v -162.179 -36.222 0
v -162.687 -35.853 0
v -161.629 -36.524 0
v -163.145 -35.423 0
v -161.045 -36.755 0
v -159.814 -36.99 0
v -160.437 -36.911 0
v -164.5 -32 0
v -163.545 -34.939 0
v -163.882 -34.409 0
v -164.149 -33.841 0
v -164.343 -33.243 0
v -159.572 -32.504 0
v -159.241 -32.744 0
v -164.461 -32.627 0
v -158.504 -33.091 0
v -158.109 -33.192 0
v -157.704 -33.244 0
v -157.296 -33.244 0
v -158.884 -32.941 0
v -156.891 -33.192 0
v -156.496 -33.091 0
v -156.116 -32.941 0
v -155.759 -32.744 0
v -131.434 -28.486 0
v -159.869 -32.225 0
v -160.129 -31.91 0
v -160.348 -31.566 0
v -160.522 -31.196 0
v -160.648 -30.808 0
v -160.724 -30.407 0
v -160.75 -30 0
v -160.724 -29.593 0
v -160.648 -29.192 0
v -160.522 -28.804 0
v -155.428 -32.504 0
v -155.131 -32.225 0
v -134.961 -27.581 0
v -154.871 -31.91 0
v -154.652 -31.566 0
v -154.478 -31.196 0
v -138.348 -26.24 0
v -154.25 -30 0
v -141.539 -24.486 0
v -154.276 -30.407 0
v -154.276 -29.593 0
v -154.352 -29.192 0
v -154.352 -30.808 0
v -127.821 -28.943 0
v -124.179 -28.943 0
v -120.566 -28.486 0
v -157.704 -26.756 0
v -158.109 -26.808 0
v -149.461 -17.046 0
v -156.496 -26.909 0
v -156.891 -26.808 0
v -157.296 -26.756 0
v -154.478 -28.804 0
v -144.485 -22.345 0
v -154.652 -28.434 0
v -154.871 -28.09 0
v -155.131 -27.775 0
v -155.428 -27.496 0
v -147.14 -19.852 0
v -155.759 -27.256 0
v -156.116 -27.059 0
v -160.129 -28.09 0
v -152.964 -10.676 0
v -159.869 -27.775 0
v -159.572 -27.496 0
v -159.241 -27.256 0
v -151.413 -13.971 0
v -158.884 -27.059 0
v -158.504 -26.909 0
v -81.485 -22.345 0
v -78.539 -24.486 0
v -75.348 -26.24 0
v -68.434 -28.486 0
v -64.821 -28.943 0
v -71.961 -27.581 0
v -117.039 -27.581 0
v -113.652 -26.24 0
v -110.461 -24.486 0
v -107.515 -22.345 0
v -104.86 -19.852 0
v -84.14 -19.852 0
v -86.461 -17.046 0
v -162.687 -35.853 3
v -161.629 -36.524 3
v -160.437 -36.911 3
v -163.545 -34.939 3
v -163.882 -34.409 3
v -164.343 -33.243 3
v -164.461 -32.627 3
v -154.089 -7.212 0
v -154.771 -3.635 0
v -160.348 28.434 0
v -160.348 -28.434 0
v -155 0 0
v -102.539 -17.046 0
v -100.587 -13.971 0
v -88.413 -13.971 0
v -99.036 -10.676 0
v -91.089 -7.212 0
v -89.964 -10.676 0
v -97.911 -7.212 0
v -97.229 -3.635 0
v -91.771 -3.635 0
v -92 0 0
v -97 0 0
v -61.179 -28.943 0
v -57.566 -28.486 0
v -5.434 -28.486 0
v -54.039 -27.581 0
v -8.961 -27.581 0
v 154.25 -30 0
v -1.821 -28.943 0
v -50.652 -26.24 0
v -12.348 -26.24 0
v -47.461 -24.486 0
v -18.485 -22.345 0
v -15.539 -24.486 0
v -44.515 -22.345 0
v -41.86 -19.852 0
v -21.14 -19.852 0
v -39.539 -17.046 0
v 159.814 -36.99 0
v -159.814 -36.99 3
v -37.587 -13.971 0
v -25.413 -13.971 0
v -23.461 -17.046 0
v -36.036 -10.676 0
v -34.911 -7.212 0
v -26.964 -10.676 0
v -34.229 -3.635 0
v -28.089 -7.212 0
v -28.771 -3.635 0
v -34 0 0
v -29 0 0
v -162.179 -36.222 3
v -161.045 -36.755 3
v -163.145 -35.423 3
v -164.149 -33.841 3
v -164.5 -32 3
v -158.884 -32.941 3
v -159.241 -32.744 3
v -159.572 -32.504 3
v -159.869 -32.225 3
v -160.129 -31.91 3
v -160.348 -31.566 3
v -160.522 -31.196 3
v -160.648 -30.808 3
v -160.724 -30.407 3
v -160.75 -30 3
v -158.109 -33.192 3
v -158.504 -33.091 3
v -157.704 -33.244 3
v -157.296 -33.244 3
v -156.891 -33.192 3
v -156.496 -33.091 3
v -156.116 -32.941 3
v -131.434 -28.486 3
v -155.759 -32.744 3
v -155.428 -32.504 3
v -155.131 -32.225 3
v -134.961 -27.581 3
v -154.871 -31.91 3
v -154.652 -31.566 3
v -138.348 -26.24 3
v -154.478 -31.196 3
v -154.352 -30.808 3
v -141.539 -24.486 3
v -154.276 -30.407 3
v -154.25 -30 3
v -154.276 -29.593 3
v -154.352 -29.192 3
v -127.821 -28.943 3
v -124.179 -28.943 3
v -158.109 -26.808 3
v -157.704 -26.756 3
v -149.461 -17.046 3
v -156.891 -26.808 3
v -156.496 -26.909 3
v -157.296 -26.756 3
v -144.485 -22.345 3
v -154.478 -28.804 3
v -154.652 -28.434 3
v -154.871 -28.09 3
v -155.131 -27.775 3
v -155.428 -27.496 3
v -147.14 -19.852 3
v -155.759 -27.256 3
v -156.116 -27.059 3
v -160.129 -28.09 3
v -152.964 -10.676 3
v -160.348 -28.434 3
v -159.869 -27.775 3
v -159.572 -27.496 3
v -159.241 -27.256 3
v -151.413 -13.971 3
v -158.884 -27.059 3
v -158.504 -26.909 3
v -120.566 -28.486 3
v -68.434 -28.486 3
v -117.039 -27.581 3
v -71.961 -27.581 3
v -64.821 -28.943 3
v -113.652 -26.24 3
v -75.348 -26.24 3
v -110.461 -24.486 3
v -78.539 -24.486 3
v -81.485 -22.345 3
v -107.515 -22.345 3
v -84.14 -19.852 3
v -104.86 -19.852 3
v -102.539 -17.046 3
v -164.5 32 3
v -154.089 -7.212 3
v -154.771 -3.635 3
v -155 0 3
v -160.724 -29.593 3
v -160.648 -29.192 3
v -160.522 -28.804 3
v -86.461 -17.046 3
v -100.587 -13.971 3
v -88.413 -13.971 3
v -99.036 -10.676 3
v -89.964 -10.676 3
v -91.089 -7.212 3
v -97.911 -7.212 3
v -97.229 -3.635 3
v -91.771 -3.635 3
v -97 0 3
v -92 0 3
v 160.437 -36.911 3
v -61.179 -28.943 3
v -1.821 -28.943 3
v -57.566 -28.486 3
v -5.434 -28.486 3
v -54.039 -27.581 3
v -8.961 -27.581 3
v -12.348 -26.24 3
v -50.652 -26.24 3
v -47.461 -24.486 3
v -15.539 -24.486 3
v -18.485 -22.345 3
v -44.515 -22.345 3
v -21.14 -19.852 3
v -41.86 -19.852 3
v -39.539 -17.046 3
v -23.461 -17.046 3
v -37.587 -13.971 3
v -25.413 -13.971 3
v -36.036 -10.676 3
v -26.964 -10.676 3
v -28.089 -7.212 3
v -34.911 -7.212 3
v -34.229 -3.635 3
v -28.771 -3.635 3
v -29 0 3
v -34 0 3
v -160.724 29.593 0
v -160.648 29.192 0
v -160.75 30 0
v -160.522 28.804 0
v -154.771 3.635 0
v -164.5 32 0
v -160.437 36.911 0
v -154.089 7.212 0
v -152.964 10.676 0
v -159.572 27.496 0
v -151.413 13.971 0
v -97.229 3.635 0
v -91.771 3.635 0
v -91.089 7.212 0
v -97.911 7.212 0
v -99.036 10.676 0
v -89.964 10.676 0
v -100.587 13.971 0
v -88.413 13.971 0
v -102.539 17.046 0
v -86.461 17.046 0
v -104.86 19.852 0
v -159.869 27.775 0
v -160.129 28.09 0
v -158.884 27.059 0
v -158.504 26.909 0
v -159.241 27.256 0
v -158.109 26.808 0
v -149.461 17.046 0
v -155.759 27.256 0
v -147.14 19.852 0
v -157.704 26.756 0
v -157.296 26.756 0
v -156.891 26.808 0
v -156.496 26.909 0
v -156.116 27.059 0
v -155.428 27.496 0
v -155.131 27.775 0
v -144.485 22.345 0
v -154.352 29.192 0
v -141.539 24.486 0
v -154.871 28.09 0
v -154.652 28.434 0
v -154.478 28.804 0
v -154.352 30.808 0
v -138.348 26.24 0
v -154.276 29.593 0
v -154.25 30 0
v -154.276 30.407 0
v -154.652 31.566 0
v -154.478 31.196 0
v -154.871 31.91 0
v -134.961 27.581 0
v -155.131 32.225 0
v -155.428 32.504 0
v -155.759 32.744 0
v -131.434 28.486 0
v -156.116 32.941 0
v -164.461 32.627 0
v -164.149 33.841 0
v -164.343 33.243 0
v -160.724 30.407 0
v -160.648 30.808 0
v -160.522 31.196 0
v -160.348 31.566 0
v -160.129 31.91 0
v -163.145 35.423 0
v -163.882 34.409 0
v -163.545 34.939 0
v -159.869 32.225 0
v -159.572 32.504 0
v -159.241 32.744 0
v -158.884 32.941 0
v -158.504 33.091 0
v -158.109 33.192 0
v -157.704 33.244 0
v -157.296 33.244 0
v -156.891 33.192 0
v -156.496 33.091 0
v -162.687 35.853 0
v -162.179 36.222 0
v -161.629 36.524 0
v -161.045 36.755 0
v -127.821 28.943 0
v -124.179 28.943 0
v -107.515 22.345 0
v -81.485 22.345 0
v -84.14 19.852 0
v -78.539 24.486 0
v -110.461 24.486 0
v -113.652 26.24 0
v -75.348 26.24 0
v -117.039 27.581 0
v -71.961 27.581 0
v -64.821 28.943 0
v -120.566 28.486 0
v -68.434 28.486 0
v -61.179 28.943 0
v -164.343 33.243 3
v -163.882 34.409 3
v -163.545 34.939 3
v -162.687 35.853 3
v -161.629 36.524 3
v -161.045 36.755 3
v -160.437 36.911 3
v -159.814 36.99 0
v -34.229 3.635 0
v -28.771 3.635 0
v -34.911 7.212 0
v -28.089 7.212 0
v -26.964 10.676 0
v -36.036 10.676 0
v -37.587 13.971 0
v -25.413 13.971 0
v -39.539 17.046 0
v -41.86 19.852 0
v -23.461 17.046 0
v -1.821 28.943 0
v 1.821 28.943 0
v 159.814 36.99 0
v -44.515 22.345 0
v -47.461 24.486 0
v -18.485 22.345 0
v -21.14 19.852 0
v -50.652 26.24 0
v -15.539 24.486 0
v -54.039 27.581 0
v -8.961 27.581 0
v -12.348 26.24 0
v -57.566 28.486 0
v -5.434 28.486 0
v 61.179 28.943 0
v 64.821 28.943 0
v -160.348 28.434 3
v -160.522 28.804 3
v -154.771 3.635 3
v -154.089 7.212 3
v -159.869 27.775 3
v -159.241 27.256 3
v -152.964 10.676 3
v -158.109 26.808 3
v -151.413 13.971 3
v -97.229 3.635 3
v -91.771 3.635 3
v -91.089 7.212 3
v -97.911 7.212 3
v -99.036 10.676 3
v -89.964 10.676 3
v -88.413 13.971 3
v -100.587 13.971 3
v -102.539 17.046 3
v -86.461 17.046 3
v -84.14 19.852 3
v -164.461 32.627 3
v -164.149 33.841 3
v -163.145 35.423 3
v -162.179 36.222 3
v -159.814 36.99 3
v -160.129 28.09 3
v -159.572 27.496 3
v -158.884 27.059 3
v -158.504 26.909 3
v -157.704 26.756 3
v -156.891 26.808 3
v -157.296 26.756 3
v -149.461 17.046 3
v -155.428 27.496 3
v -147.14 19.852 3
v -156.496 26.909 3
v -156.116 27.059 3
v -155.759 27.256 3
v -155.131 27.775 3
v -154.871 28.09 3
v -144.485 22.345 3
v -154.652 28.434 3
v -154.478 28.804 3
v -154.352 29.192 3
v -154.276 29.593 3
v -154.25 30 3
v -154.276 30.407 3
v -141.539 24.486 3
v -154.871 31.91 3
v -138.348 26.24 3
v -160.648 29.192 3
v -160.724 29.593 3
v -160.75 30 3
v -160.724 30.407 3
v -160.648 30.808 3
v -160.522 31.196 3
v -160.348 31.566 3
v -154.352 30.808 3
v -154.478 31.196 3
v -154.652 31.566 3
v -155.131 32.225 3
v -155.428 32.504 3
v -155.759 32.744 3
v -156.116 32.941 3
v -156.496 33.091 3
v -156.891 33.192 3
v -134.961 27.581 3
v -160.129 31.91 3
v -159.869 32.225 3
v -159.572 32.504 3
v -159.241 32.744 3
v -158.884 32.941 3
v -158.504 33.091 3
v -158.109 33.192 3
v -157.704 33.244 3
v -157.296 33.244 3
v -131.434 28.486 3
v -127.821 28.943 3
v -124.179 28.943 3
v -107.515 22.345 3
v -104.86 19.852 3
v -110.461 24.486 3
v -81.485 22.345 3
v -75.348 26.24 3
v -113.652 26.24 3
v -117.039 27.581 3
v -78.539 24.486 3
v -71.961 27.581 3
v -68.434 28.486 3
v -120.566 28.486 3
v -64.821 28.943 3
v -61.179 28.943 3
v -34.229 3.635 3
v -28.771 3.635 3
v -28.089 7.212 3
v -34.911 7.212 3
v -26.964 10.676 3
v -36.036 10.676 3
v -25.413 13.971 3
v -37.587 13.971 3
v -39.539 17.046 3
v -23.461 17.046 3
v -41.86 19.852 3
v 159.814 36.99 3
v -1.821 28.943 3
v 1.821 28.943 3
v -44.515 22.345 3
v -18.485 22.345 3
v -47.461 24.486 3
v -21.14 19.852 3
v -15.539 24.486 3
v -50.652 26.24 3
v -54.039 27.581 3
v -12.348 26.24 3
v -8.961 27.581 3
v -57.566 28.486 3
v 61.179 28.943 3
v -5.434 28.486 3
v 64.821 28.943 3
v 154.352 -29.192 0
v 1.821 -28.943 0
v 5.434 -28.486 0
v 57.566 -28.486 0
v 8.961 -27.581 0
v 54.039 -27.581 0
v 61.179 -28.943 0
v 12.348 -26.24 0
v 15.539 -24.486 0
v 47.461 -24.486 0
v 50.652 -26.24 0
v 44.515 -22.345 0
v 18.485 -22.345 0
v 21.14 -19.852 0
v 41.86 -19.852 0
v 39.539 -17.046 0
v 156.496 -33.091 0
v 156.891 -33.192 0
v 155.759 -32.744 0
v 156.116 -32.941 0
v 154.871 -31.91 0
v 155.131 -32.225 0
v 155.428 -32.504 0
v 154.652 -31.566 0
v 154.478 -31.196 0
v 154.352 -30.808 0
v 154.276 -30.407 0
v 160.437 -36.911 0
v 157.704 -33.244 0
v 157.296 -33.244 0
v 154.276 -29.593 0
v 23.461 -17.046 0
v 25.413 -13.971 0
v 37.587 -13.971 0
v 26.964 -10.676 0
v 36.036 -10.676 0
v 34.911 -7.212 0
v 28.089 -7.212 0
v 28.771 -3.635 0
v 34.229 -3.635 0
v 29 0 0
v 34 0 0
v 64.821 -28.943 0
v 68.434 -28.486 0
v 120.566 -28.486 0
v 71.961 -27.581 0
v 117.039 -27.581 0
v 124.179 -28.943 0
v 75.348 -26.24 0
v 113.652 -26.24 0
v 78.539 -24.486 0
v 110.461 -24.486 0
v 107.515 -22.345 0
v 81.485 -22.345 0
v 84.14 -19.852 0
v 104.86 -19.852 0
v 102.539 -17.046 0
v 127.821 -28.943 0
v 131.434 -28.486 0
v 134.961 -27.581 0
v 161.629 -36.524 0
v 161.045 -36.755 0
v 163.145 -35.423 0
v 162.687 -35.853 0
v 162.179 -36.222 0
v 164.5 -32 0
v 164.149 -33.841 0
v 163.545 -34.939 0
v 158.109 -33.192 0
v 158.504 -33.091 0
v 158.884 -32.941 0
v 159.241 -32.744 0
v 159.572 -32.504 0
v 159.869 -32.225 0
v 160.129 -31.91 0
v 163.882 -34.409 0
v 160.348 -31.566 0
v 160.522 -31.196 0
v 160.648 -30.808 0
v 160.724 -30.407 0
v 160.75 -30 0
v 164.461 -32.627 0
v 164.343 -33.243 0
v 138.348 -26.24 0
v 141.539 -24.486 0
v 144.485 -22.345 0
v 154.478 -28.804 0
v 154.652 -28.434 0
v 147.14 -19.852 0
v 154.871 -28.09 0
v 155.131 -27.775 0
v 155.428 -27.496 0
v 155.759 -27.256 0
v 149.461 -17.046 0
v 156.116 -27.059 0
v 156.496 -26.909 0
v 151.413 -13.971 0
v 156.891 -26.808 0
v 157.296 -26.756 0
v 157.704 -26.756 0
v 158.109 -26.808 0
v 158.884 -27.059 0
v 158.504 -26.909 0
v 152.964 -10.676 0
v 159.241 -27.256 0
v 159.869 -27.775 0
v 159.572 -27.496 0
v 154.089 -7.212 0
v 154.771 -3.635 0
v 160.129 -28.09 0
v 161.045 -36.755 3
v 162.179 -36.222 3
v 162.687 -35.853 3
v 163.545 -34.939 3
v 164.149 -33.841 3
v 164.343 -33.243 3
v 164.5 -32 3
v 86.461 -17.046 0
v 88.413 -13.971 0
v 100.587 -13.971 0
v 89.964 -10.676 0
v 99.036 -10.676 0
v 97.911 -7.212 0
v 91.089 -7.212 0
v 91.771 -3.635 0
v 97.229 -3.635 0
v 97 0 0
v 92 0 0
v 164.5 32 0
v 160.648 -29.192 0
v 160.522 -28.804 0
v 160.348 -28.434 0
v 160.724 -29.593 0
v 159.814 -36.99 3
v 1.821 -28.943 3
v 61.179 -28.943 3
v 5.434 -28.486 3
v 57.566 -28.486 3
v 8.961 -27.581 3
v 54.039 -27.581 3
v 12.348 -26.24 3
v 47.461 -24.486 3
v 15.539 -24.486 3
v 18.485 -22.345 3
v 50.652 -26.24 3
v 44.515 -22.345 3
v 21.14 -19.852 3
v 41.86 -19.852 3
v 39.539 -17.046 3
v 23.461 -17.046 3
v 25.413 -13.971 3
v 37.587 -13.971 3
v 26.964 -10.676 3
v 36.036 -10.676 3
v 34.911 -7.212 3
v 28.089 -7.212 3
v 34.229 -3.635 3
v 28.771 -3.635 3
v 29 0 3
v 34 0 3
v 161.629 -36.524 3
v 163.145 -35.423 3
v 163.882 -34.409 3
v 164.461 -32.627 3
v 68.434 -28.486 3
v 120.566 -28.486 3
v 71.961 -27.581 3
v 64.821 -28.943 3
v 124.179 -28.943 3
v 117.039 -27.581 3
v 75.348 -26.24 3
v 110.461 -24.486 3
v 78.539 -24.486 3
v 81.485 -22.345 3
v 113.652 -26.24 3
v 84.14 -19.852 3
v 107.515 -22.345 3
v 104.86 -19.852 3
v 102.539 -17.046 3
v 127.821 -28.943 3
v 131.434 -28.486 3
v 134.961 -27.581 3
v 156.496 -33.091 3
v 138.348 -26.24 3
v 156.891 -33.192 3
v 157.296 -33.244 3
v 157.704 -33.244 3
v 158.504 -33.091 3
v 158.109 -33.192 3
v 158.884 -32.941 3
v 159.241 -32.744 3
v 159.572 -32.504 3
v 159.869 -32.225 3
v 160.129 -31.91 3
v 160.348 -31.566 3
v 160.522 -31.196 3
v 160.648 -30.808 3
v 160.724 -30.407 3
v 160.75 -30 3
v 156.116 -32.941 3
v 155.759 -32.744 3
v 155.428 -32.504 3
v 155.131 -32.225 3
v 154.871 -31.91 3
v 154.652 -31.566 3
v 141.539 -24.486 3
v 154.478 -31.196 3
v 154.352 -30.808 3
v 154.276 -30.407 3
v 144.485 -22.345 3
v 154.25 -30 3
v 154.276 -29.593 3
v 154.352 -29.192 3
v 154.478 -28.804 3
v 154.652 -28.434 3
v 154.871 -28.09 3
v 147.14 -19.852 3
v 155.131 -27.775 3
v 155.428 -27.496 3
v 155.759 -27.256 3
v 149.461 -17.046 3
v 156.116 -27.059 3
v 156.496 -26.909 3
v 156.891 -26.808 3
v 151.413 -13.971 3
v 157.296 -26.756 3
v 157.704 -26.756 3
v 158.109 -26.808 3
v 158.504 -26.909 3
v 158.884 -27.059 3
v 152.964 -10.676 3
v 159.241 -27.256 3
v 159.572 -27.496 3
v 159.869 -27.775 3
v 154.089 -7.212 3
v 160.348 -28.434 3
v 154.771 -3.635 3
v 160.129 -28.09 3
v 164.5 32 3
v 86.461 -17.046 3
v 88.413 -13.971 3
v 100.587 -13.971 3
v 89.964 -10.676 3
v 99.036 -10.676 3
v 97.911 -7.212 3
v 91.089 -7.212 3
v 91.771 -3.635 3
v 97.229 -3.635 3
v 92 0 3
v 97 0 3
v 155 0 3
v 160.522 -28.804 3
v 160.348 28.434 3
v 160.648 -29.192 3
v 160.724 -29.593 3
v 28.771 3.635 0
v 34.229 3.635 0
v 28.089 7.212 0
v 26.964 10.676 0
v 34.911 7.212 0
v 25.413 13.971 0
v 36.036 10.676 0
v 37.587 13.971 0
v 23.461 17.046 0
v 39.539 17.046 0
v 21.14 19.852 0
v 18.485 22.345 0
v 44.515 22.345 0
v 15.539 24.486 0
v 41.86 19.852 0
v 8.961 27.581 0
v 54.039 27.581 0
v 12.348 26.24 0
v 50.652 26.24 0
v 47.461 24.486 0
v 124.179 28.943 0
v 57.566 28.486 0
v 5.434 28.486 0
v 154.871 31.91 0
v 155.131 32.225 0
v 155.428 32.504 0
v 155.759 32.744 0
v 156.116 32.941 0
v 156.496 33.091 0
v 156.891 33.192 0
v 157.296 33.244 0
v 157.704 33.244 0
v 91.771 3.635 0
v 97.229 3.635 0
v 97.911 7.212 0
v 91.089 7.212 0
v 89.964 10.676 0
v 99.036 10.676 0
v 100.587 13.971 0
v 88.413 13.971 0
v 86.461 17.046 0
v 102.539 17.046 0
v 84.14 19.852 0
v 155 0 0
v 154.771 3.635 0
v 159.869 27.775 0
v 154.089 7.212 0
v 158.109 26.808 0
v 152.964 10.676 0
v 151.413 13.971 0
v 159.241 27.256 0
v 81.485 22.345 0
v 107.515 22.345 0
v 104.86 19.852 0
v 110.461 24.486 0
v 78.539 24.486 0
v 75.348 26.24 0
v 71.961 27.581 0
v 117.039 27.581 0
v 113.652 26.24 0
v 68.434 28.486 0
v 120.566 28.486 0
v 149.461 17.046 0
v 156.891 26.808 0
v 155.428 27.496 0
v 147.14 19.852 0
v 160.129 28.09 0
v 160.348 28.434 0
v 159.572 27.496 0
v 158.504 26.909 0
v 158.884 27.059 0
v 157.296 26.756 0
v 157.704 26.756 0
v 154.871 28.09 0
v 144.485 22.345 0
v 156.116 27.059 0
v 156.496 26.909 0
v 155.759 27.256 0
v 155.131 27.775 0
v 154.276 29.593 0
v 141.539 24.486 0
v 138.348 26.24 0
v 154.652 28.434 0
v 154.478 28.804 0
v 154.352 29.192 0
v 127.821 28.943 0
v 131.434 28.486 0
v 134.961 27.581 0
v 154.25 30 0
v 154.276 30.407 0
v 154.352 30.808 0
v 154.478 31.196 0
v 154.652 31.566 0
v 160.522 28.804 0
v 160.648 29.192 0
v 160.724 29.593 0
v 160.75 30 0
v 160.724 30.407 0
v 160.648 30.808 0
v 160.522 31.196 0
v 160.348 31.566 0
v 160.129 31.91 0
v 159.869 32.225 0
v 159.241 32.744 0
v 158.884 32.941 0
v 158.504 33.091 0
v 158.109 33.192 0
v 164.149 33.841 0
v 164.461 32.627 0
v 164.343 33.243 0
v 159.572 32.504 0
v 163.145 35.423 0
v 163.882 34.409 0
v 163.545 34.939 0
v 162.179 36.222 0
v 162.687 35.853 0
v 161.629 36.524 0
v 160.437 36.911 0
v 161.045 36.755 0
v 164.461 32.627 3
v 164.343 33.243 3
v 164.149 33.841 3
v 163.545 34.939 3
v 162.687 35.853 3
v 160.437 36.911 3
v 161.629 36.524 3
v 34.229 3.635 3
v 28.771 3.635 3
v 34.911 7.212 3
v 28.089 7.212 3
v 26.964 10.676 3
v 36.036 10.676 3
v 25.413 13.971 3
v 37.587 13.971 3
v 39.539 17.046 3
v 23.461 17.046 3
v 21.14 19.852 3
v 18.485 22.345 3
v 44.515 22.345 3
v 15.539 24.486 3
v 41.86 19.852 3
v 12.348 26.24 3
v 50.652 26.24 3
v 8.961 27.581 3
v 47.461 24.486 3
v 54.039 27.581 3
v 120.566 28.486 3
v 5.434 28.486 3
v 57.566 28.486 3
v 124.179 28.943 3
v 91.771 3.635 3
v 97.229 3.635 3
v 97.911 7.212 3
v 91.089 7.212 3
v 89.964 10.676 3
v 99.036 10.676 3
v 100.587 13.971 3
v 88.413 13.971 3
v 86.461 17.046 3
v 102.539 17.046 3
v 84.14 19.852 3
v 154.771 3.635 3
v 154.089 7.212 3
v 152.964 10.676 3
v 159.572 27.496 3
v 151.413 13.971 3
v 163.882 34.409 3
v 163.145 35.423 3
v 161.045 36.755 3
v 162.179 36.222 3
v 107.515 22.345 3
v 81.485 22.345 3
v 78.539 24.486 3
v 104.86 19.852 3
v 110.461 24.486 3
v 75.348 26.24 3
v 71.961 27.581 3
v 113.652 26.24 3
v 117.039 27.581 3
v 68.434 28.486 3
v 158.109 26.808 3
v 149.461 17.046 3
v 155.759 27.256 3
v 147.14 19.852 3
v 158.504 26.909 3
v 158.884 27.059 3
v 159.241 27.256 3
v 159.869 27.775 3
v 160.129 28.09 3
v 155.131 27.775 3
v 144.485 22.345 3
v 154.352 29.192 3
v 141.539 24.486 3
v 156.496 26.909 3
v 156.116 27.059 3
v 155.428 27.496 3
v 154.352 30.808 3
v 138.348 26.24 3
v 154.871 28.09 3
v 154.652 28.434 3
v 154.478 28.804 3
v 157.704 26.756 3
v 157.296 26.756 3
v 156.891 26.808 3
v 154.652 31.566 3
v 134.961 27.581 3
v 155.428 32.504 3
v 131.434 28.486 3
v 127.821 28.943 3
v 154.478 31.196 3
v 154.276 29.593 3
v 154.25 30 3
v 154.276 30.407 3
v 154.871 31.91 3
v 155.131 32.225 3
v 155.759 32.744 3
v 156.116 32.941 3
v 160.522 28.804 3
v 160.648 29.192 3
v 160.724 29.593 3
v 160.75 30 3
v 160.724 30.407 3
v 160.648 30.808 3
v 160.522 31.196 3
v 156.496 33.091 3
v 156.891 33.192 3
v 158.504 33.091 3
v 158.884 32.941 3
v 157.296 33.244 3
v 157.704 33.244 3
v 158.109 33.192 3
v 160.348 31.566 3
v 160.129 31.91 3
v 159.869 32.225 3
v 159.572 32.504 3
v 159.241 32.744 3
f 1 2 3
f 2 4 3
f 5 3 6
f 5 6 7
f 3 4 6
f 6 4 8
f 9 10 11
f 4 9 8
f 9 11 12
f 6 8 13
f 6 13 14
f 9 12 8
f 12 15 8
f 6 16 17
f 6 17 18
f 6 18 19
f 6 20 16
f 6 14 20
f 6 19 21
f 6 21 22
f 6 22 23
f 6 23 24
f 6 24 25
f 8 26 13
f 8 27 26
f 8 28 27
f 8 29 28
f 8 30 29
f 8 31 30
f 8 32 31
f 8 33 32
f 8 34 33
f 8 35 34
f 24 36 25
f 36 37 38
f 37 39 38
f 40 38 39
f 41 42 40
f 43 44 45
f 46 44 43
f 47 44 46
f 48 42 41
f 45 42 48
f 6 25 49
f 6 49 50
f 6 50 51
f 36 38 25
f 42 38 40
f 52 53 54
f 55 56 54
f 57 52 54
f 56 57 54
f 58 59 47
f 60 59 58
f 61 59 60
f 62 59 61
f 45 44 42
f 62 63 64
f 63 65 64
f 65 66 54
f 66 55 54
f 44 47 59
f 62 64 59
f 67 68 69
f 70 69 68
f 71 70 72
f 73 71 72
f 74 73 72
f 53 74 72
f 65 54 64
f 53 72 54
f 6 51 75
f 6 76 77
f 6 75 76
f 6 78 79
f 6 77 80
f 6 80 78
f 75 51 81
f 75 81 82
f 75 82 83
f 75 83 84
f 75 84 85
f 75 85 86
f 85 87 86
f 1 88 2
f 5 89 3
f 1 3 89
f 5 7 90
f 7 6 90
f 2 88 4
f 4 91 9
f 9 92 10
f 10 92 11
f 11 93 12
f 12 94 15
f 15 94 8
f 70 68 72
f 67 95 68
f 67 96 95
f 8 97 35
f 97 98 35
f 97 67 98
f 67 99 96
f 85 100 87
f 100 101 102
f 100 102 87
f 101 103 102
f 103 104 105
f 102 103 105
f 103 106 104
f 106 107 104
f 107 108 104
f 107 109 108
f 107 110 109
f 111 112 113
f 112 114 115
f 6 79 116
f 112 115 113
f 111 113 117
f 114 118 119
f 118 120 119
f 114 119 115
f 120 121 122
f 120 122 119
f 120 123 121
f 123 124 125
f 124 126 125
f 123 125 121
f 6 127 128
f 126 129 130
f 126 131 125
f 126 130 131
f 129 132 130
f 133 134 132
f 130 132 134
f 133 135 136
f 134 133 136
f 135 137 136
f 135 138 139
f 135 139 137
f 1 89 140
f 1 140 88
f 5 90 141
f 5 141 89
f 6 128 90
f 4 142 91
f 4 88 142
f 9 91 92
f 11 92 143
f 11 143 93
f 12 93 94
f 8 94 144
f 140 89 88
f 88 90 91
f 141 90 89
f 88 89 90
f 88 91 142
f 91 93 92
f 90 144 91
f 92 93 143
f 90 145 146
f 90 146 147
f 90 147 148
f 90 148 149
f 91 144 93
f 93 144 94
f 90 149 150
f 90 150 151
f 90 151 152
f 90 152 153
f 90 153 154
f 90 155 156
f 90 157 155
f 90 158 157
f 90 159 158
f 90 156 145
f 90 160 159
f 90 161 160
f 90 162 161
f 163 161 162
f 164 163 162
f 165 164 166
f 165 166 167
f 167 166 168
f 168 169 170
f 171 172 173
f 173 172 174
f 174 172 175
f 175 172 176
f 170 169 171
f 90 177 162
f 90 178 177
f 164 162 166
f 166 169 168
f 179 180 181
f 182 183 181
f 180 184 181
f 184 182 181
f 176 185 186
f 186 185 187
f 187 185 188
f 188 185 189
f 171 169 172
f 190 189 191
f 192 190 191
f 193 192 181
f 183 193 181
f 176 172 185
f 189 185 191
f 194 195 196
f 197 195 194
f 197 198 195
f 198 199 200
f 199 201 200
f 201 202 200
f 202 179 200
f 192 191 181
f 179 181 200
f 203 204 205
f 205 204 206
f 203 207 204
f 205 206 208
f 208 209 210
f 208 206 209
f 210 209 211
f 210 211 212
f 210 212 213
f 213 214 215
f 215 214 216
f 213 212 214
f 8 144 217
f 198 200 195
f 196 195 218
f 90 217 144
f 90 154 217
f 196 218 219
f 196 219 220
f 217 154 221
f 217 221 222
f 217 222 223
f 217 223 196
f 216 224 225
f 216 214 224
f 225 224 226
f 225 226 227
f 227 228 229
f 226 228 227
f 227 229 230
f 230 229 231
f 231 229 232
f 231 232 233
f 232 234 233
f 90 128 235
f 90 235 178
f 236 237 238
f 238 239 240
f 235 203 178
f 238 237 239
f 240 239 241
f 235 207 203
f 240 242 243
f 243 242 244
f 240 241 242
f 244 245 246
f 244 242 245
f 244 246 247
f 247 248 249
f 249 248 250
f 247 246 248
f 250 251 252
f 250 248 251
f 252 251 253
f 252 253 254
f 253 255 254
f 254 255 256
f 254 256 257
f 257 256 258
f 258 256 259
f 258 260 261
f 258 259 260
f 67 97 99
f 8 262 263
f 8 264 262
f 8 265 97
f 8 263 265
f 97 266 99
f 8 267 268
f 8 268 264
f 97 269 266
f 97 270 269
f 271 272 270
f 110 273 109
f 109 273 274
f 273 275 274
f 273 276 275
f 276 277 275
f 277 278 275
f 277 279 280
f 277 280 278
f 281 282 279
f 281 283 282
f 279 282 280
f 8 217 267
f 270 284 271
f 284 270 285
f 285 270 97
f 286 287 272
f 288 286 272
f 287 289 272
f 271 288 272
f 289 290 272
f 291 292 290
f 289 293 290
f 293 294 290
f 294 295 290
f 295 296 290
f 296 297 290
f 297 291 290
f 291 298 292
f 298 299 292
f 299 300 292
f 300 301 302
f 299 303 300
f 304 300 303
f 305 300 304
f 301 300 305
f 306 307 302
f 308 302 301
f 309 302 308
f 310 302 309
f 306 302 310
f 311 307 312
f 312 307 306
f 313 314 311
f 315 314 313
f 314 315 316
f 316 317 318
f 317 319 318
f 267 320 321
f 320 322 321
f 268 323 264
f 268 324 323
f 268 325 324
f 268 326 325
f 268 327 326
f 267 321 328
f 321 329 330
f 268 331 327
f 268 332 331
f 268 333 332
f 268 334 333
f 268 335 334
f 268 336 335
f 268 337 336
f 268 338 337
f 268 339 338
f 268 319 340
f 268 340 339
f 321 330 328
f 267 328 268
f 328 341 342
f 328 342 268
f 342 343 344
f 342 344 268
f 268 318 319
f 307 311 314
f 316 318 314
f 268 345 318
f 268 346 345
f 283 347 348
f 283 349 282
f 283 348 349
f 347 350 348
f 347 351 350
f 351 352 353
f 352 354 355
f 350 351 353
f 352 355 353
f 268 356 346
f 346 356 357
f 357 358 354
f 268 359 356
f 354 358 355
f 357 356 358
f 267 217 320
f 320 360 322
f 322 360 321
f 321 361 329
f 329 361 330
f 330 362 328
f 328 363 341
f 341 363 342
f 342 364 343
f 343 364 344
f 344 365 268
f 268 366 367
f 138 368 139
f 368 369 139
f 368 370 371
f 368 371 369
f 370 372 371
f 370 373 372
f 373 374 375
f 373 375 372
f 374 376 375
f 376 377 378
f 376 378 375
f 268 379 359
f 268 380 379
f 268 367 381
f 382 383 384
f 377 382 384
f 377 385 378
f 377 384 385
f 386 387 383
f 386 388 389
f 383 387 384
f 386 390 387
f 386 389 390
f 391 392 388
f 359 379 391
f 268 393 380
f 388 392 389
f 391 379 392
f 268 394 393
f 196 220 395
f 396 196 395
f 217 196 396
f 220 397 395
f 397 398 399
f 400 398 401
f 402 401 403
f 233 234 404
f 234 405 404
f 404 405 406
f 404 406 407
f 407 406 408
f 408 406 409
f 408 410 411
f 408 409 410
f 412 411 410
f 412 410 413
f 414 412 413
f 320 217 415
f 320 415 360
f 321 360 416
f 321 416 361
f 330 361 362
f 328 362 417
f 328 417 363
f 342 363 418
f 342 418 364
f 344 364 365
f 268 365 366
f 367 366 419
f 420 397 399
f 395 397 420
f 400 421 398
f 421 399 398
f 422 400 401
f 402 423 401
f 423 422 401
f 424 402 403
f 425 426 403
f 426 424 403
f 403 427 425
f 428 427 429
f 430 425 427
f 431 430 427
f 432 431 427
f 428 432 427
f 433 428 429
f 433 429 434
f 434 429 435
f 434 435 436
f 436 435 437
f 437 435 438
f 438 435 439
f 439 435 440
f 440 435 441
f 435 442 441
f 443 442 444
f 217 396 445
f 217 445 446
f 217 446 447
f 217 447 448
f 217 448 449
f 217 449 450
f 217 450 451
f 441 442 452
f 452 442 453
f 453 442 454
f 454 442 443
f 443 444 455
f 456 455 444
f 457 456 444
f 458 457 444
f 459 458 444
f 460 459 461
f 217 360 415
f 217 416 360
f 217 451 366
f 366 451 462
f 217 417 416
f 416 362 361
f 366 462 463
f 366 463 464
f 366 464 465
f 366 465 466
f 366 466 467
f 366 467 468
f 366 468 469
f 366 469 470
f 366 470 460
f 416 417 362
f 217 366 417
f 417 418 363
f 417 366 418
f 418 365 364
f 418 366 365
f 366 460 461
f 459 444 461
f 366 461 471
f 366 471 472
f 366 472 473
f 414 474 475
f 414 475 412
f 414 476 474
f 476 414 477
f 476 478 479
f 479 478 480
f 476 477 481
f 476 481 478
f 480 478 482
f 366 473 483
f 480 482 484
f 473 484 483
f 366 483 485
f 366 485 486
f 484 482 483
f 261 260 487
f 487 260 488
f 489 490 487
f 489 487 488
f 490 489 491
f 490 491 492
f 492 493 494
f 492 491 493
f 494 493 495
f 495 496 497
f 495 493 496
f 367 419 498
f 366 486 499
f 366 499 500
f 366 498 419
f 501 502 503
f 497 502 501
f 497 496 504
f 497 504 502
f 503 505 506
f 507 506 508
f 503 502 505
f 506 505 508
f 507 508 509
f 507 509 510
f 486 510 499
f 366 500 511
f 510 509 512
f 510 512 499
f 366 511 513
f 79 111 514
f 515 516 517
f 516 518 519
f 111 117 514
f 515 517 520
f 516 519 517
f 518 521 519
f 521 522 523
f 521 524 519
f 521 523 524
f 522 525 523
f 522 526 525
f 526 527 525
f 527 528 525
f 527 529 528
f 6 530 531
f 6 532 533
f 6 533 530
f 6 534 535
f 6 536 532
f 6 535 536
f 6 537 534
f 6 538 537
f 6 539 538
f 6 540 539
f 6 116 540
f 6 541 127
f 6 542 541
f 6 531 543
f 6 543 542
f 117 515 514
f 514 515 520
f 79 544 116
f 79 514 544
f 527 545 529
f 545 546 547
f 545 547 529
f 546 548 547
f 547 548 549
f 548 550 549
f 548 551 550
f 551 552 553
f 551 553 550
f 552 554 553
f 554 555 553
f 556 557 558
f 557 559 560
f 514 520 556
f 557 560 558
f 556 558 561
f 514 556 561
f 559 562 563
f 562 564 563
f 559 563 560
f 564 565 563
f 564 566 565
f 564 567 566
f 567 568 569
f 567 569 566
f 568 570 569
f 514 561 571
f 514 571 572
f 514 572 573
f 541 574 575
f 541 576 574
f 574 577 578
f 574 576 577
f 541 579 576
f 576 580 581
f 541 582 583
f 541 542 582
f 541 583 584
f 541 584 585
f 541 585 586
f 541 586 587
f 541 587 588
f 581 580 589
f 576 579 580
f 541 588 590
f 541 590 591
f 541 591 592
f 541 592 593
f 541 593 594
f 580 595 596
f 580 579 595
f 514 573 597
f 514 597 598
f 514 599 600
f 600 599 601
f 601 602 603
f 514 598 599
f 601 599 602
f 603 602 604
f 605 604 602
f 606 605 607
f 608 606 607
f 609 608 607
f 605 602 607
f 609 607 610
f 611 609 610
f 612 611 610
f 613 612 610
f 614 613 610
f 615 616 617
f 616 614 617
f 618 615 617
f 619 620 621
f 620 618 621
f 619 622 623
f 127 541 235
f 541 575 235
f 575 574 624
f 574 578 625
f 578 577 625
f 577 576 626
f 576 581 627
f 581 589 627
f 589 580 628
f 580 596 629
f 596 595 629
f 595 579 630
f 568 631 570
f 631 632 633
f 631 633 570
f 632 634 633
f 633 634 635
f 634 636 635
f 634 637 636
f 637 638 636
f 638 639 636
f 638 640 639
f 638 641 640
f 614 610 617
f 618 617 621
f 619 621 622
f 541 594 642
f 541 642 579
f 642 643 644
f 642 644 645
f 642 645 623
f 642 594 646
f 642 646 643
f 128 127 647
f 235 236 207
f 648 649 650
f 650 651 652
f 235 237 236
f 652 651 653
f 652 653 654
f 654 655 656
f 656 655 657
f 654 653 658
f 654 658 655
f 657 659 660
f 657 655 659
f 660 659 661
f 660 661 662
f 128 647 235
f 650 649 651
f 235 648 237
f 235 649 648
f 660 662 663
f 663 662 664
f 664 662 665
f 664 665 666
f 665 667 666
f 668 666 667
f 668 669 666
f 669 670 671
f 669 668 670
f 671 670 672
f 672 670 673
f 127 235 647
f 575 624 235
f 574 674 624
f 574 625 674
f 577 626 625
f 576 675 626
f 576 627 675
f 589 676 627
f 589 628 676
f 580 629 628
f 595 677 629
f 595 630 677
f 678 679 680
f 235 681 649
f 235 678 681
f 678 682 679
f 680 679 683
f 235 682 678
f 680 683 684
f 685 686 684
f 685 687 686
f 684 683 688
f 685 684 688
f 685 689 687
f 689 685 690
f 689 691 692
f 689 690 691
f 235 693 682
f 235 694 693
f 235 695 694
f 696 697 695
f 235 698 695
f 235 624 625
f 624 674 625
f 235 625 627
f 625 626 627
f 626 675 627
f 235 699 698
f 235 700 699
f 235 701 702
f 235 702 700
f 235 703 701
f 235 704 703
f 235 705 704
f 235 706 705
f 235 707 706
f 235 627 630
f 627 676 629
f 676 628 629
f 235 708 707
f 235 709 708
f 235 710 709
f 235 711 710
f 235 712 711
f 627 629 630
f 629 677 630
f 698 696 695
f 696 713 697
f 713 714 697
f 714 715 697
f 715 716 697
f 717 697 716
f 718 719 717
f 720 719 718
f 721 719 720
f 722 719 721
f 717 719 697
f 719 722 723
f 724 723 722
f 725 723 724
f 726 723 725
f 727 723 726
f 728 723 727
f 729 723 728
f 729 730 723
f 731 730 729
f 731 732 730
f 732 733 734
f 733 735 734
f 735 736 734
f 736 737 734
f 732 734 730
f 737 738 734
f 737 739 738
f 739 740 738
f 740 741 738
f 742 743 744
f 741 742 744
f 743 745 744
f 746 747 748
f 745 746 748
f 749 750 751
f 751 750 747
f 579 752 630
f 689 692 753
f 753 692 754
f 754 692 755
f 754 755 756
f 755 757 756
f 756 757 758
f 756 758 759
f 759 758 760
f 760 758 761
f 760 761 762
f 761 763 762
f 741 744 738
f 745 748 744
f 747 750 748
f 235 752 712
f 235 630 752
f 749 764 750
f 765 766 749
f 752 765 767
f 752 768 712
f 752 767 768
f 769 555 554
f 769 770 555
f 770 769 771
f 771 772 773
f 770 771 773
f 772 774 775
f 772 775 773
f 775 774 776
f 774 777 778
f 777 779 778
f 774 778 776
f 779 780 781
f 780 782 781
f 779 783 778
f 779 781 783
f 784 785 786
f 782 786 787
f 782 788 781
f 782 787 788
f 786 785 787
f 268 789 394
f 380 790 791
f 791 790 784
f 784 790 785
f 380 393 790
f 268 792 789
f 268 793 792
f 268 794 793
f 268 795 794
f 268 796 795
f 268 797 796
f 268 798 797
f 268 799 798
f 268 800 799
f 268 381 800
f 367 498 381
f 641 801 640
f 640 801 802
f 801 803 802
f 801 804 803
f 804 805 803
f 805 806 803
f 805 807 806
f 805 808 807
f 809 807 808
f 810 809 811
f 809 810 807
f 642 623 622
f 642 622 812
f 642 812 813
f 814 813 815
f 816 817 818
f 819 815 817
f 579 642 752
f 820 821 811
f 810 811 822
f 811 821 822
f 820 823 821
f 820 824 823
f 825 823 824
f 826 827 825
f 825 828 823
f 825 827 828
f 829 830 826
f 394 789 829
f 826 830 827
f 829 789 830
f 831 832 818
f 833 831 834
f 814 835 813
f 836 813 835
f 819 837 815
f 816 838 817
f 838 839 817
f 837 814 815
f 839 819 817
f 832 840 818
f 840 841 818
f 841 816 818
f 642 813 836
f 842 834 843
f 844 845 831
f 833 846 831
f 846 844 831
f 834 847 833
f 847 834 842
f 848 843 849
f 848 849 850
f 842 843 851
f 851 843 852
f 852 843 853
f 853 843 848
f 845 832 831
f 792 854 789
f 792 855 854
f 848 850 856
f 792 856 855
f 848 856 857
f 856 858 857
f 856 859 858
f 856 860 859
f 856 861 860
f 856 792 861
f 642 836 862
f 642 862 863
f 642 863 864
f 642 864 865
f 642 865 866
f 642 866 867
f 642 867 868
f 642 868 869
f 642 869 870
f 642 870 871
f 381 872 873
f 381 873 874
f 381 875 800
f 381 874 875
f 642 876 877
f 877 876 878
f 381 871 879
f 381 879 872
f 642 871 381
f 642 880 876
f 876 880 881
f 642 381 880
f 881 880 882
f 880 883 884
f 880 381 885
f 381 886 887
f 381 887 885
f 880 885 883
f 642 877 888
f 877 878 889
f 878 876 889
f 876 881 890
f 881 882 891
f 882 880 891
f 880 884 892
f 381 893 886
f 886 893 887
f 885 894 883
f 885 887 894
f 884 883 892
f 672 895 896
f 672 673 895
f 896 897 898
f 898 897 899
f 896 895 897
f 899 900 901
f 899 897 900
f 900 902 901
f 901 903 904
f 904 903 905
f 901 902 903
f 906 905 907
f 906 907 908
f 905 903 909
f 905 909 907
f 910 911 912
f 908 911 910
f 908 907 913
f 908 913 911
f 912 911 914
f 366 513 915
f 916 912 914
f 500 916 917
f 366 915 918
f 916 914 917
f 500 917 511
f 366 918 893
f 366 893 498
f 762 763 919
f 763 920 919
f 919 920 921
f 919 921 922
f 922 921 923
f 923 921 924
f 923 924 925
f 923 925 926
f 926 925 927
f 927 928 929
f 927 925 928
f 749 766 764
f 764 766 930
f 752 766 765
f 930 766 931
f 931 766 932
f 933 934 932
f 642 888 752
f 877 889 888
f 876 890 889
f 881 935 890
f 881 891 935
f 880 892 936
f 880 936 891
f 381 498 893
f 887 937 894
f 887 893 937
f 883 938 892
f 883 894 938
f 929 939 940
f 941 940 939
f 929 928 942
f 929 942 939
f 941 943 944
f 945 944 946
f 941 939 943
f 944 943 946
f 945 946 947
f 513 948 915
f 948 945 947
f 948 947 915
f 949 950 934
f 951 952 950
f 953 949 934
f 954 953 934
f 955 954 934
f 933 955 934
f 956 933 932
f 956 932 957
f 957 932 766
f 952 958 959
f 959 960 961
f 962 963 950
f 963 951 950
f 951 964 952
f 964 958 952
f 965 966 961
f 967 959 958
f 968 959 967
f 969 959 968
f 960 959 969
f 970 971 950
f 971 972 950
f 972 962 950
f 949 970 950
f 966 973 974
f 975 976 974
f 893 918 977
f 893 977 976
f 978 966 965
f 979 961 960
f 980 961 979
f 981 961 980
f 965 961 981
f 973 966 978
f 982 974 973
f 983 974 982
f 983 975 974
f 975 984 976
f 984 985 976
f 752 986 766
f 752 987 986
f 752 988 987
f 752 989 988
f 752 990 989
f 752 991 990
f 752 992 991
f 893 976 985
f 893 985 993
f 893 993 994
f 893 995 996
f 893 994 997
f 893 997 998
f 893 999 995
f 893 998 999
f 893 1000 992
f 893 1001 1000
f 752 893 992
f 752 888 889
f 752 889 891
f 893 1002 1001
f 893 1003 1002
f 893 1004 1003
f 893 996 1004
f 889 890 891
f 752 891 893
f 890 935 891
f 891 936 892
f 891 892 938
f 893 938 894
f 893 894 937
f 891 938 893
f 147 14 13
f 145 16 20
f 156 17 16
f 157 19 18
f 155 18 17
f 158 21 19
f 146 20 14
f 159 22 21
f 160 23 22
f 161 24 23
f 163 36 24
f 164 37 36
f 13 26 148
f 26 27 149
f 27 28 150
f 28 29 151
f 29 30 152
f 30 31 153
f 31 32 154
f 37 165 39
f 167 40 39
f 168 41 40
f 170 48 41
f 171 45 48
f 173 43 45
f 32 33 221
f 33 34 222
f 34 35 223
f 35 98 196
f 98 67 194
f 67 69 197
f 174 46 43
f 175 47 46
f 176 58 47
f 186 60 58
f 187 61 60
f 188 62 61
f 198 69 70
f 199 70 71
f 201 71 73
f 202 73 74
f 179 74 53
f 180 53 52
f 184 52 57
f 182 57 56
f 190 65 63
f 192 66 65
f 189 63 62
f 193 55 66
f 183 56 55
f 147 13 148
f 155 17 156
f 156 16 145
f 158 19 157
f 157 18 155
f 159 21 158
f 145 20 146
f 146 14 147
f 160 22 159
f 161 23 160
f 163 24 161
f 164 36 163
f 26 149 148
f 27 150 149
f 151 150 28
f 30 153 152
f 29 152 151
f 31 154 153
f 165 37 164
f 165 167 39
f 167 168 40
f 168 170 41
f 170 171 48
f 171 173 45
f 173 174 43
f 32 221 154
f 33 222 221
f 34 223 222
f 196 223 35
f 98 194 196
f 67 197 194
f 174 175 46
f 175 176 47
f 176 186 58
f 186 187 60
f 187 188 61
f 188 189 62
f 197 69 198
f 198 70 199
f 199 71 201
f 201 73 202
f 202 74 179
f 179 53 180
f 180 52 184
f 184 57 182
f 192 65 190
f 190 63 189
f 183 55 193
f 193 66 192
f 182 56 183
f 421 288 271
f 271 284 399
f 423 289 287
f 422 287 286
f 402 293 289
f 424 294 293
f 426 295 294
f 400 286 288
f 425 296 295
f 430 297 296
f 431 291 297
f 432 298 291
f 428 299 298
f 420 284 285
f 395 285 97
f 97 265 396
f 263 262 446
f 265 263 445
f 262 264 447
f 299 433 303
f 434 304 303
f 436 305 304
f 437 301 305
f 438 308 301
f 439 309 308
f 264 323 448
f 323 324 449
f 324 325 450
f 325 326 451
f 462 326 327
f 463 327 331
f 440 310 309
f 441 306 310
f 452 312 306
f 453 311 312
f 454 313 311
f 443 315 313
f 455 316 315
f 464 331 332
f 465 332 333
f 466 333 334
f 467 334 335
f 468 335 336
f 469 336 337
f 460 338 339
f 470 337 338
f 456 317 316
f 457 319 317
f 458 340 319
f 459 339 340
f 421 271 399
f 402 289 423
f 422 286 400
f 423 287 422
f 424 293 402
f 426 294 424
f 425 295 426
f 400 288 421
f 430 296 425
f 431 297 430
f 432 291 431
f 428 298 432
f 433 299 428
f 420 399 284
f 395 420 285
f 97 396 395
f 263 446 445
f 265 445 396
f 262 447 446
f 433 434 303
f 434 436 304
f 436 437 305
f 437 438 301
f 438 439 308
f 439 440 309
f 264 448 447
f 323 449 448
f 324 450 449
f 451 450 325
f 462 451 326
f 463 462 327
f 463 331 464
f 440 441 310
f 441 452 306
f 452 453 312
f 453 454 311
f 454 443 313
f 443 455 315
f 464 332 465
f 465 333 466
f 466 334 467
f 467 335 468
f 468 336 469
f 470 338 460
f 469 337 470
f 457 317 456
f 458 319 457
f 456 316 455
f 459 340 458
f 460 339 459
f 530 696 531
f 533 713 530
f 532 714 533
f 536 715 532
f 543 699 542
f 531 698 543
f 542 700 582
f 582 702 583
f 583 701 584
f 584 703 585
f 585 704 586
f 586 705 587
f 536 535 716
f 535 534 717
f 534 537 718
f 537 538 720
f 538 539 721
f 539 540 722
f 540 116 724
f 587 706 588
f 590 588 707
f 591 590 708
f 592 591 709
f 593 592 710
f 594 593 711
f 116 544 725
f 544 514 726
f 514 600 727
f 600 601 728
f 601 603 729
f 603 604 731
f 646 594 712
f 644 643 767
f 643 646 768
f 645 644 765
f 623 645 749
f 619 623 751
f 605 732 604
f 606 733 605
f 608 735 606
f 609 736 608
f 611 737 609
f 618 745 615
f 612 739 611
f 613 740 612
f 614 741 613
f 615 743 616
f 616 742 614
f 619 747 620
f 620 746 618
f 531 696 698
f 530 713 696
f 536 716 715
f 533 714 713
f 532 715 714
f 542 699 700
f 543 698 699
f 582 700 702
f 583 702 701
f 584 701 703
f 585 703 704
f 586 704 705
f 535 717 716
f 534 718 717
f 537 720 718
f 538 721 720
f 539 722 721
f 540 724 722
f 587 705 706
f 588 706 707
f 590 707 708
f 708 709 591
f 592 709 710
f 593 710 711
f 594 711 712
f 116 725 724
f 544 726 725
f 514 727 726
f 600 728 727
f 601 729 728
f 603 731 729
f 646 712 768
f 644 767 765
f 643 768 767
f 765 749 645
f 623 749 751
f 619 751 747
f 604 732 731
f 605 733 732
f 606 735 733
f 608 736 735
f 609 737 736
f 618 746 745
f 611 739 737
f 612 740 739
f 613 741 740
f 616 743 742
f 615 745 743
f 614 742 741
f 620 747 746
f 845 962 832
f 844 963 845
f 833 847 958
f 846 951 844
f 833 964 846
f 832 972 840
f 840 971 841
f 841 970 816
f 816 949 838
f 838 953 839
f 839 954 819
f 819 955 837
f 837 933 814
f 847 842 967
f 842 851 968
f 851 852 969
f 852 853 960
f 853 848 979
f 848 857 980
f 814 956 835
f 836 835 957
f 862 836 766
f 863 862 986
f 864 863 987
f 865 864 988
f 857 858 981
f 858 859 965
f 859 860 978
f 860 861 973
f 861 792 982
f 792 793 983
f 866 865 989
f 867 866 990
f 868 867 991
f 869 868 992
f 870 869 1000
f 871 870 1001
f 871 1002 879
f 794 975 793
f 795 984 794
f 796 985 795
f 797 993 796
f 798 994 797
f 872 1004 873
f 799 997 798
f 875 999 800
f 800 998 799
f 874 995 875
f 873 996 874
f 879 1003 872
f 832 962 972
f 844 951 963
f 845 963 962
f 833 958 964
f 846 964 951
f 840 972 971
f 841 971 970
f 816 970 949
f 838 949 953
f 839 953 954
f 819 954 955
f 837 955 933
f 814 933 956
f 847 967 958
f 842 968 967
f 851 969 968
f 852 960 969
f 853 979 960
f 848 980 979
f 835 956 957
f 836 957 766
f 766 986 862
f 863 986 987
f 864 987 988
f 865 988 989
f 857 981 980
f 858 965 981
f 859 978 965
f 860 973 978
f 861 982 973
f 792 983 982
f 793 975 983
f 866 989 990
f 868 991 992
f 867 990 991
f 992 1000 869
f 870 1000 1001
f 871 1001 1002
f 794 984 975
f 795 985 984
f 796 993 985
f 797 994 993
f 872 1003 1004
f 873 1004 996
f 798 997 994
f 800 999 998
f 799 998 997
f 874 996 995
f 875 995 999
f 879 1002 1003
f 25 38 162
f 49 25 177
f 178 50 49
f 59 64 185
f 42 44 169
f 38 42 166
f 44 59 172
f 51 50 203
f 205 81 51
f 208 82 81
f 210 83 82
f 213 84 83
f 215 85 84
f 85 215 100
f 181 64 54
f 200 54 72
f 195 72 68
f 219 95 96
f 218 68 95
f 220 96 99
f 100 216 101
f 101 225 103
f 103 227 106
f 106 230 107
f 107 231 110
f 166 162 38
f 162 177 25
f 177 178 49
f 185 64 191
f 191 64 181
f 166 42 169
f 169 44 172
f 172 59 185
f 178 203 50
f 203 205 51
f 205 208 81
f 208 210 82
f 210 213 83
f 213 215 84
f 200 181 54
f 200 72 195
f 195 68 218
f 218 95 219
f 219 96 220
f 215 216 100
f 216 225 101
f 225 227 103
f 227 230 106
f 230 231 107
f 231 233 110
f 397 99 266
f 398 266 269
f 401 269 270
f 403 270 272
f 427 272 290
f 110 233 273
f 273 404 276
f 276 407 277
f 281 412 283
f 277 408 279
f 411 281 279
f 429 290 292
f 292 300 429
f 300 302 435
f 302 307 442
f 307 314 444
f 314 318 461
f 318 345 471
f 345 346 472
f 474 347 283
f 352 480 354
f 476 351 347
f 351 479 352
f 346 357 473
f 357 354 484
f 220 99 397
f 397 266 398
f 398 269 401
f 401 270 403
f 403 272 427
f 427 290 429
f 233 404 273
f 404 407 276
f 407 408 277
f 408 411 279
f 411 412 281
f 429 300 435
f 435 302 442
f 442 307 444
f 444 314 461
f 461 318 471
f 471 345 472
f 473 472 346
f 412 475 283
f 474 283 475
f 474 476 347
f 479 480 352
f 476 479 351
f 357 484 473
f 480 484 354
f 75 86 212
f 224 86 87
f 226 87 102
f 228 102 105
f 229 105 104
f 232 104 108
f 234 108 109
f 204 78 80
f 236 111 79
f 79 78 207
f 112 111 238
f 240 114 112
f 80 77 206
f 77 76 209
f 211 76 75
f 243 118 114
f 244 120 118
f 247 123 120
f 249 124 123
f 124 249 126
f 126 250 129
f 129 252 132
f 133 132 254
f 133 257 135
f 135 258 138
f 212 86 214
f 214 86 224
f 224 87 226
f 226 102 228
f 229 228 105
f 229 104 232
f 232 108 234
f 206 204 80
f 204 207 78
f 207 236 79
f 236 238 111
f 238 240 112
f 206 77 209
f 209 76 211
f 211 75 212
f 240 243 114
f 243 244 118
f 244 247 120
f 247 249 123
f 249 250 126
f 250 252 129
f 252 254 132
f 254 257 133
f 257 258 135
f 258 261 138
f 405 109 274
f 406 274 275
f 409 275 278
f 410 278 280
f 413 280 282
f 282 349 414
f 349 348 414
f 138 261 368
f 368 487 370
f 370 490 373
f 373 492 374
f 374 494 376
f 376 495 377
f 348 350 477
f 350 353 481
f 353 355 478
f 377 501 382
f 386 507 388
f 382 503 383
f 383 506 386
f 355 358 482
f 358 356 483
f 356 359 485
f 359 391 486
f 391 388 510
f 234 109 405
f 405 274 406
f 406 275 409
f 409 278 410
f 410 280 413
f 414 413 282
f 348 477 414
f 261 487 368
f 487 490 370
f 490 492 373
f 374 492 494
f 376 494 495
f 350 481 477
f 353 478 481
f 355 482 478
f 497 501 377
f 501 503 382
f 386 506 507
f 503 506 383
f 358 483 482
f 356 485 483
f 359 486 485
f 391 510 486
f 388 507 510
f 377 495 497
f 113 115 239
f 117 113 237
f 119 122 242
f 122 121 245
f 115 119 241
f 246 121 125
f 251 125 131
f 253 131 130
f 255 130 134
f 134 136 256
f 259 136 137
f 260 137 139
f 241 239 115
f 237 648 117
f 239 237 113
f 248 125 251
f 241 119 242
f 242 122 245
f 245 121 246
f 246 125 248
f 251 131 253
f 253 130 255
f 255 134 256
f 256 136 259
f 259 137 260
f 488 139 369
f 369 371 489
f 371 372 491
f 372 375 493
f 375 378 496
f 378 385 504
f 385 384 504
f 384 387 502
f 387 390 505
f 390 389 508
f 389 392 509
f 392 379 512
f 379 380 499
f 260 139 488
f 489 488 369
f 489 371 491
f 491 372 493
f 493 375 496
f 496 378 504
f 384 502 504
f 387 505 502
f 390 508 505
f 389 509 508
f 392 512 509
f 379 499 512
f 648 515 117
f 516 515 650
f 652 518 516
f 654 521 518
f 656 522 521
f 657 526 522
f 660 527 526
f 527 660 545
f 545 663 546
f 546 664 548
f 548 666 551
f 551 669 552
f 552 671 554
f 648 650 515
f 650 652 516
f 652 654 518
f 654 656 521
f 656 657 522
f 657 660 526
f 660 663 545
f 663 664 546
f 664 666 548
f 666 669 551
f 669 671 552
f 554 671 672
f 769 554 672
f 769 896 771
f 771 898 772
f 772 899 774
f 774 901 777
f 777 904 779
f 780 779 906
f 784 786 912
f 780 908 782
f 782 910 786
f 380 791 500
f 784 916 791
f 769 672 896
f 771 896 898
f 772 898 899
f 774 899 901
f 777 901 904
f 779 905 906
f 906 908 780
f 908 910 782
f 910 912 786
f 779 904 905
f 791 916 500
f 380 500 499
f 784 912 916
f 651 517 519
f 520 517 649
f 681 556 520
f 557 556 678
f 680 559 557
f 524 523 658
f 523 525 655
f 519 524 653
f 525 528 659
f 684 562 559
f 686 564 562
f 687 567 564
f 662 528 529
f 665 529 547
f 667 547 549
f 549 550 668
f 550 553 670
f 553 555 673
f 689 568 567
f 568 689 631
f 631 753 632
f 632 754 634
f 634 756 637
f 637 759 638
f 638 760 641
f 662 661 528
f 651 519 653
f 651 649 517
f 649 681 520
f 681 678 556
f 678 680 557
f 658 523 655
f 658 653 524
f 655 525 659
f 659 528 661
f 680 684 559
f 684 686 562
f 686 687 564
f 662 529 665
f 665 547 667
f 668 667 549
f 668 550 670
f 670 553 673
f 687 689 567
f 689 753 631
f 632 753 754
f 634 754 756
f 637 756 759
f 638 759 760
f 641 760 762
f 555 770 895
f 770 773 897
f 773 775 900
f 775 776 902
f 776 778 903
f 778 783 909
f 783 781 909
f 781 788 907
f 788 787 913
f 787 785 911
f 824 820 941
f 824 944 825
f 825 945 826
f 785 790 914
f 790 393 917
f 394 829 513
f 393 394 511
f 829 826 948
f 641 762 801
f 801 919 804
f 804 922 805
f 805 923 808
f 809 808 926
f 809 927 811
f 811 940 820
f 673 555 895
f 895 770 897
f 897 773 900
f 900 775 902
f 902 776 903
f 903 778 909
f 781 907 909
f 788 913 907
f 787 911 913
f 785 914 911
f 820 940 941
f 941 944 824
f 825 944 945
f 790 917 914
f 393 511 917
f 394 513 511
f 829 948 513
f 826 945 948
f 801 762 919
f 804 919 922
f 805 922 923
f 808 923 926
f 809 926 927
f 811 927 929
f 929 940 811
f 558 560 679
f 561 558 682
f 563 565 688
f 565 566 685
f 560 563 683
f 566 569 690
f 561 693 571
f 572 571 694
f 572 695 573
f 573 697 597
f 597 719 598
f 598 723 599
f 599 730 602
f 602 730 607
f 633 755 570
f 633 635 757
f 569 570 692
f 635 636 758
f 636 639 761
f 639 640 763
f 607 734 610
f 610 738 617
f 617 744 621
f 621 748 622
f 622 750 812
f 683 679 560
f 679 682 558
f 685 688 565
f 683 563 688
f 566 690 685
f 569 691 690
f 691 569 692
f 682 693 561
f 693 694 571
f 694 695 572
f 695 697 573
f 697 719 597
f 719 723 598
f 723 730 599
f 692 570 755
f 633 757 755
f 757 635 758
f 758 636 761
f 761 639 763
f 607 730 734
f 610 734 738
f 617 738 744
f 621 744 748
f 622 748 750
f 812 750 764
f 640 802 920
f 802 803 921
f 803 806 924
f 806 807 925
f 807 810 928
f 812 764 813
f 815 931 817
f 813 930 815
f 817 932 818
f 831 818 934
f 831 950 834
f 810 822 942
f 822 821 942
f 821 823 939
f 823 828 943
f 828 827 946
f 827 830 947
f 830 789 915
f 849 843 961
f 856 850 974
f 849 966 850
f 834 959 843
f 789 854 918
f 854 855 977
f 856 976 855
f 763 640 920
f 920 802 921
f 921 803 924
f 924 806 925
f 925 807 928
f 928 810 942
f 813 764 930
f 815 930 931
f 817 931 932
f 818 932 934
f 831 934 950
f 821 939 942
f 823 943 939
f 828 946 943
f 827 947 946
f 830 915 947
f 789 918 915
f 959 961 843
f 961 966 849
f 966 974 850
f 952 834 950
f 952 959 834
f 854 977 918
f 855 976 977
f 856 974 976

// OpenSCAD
$fn = 50;

difference() {
	union() {
		hull() {
			translate(v = [-159.5, 32.0, 0]) {
				cylinder(h = 3, r = 5);
			}
			translate(v = [159.5, 32.0, 0]) {
				cylinder(h = 3, r = 5);
			}
			translate(v = [-159.5, -32.0, 0]) {
				cylinder(h = 3, r = 5);
			}
			translate(v = [159.5, -32.0, 0]) {
				cylinder(h = 3, r = 5);
			}
		}
	}
	union() {
		translate(v = [-157.5, -30.0, -100.0]) {
			cylinder(h = 200, r = 3.25);
		}
		translate(v = [-157.5, 30.0, -100.0]) {
			cylinder(h = 200, r = 3.25);
		}
		translate(v = [157.5, -30.0, -100.0]) {
			cylinder(h = 200, r = 3.25);
		}
		translate(v = [157.5, 30.0, -100.0]) {
			cylinder(h = 200, r = 3.25);
		}
		translate(v = [-157.5, -30.0, -100.0]) {
			cylinder(h = 200, r = 1.8);
		}
		translate(v = [-157.5, 30.0, -100.0]) {
			cylinder(h = 200, r = 1.8);
		}
		translate(v = [157.5, -30.0, -100.0]) {
			cylinder(h = 200, r = 1.8);
		}
		translate(v = [157.5, 30.0, -100.0]) {
			cylinder(h = 200, r = 1.8);
		}
		translate(v = [-126.0, 0, 0.0]) {
			cylinder(h = 3, r = 29.0);
		}
		translate(v = [-63.0, 0, 0.0]) {
			cylinder(h = 3, r = 29.0);
		}
		cylinder(h = 3, r = 29.0);
		translate(v = [63.0, 0, 0.0]) {
			cylinder(h = 3, r = 29.0);
		}
		translate(v = [126.0, 0, 0.0]) {
			cylinder(h = 3, r = 29.0);
		}
	}
}
